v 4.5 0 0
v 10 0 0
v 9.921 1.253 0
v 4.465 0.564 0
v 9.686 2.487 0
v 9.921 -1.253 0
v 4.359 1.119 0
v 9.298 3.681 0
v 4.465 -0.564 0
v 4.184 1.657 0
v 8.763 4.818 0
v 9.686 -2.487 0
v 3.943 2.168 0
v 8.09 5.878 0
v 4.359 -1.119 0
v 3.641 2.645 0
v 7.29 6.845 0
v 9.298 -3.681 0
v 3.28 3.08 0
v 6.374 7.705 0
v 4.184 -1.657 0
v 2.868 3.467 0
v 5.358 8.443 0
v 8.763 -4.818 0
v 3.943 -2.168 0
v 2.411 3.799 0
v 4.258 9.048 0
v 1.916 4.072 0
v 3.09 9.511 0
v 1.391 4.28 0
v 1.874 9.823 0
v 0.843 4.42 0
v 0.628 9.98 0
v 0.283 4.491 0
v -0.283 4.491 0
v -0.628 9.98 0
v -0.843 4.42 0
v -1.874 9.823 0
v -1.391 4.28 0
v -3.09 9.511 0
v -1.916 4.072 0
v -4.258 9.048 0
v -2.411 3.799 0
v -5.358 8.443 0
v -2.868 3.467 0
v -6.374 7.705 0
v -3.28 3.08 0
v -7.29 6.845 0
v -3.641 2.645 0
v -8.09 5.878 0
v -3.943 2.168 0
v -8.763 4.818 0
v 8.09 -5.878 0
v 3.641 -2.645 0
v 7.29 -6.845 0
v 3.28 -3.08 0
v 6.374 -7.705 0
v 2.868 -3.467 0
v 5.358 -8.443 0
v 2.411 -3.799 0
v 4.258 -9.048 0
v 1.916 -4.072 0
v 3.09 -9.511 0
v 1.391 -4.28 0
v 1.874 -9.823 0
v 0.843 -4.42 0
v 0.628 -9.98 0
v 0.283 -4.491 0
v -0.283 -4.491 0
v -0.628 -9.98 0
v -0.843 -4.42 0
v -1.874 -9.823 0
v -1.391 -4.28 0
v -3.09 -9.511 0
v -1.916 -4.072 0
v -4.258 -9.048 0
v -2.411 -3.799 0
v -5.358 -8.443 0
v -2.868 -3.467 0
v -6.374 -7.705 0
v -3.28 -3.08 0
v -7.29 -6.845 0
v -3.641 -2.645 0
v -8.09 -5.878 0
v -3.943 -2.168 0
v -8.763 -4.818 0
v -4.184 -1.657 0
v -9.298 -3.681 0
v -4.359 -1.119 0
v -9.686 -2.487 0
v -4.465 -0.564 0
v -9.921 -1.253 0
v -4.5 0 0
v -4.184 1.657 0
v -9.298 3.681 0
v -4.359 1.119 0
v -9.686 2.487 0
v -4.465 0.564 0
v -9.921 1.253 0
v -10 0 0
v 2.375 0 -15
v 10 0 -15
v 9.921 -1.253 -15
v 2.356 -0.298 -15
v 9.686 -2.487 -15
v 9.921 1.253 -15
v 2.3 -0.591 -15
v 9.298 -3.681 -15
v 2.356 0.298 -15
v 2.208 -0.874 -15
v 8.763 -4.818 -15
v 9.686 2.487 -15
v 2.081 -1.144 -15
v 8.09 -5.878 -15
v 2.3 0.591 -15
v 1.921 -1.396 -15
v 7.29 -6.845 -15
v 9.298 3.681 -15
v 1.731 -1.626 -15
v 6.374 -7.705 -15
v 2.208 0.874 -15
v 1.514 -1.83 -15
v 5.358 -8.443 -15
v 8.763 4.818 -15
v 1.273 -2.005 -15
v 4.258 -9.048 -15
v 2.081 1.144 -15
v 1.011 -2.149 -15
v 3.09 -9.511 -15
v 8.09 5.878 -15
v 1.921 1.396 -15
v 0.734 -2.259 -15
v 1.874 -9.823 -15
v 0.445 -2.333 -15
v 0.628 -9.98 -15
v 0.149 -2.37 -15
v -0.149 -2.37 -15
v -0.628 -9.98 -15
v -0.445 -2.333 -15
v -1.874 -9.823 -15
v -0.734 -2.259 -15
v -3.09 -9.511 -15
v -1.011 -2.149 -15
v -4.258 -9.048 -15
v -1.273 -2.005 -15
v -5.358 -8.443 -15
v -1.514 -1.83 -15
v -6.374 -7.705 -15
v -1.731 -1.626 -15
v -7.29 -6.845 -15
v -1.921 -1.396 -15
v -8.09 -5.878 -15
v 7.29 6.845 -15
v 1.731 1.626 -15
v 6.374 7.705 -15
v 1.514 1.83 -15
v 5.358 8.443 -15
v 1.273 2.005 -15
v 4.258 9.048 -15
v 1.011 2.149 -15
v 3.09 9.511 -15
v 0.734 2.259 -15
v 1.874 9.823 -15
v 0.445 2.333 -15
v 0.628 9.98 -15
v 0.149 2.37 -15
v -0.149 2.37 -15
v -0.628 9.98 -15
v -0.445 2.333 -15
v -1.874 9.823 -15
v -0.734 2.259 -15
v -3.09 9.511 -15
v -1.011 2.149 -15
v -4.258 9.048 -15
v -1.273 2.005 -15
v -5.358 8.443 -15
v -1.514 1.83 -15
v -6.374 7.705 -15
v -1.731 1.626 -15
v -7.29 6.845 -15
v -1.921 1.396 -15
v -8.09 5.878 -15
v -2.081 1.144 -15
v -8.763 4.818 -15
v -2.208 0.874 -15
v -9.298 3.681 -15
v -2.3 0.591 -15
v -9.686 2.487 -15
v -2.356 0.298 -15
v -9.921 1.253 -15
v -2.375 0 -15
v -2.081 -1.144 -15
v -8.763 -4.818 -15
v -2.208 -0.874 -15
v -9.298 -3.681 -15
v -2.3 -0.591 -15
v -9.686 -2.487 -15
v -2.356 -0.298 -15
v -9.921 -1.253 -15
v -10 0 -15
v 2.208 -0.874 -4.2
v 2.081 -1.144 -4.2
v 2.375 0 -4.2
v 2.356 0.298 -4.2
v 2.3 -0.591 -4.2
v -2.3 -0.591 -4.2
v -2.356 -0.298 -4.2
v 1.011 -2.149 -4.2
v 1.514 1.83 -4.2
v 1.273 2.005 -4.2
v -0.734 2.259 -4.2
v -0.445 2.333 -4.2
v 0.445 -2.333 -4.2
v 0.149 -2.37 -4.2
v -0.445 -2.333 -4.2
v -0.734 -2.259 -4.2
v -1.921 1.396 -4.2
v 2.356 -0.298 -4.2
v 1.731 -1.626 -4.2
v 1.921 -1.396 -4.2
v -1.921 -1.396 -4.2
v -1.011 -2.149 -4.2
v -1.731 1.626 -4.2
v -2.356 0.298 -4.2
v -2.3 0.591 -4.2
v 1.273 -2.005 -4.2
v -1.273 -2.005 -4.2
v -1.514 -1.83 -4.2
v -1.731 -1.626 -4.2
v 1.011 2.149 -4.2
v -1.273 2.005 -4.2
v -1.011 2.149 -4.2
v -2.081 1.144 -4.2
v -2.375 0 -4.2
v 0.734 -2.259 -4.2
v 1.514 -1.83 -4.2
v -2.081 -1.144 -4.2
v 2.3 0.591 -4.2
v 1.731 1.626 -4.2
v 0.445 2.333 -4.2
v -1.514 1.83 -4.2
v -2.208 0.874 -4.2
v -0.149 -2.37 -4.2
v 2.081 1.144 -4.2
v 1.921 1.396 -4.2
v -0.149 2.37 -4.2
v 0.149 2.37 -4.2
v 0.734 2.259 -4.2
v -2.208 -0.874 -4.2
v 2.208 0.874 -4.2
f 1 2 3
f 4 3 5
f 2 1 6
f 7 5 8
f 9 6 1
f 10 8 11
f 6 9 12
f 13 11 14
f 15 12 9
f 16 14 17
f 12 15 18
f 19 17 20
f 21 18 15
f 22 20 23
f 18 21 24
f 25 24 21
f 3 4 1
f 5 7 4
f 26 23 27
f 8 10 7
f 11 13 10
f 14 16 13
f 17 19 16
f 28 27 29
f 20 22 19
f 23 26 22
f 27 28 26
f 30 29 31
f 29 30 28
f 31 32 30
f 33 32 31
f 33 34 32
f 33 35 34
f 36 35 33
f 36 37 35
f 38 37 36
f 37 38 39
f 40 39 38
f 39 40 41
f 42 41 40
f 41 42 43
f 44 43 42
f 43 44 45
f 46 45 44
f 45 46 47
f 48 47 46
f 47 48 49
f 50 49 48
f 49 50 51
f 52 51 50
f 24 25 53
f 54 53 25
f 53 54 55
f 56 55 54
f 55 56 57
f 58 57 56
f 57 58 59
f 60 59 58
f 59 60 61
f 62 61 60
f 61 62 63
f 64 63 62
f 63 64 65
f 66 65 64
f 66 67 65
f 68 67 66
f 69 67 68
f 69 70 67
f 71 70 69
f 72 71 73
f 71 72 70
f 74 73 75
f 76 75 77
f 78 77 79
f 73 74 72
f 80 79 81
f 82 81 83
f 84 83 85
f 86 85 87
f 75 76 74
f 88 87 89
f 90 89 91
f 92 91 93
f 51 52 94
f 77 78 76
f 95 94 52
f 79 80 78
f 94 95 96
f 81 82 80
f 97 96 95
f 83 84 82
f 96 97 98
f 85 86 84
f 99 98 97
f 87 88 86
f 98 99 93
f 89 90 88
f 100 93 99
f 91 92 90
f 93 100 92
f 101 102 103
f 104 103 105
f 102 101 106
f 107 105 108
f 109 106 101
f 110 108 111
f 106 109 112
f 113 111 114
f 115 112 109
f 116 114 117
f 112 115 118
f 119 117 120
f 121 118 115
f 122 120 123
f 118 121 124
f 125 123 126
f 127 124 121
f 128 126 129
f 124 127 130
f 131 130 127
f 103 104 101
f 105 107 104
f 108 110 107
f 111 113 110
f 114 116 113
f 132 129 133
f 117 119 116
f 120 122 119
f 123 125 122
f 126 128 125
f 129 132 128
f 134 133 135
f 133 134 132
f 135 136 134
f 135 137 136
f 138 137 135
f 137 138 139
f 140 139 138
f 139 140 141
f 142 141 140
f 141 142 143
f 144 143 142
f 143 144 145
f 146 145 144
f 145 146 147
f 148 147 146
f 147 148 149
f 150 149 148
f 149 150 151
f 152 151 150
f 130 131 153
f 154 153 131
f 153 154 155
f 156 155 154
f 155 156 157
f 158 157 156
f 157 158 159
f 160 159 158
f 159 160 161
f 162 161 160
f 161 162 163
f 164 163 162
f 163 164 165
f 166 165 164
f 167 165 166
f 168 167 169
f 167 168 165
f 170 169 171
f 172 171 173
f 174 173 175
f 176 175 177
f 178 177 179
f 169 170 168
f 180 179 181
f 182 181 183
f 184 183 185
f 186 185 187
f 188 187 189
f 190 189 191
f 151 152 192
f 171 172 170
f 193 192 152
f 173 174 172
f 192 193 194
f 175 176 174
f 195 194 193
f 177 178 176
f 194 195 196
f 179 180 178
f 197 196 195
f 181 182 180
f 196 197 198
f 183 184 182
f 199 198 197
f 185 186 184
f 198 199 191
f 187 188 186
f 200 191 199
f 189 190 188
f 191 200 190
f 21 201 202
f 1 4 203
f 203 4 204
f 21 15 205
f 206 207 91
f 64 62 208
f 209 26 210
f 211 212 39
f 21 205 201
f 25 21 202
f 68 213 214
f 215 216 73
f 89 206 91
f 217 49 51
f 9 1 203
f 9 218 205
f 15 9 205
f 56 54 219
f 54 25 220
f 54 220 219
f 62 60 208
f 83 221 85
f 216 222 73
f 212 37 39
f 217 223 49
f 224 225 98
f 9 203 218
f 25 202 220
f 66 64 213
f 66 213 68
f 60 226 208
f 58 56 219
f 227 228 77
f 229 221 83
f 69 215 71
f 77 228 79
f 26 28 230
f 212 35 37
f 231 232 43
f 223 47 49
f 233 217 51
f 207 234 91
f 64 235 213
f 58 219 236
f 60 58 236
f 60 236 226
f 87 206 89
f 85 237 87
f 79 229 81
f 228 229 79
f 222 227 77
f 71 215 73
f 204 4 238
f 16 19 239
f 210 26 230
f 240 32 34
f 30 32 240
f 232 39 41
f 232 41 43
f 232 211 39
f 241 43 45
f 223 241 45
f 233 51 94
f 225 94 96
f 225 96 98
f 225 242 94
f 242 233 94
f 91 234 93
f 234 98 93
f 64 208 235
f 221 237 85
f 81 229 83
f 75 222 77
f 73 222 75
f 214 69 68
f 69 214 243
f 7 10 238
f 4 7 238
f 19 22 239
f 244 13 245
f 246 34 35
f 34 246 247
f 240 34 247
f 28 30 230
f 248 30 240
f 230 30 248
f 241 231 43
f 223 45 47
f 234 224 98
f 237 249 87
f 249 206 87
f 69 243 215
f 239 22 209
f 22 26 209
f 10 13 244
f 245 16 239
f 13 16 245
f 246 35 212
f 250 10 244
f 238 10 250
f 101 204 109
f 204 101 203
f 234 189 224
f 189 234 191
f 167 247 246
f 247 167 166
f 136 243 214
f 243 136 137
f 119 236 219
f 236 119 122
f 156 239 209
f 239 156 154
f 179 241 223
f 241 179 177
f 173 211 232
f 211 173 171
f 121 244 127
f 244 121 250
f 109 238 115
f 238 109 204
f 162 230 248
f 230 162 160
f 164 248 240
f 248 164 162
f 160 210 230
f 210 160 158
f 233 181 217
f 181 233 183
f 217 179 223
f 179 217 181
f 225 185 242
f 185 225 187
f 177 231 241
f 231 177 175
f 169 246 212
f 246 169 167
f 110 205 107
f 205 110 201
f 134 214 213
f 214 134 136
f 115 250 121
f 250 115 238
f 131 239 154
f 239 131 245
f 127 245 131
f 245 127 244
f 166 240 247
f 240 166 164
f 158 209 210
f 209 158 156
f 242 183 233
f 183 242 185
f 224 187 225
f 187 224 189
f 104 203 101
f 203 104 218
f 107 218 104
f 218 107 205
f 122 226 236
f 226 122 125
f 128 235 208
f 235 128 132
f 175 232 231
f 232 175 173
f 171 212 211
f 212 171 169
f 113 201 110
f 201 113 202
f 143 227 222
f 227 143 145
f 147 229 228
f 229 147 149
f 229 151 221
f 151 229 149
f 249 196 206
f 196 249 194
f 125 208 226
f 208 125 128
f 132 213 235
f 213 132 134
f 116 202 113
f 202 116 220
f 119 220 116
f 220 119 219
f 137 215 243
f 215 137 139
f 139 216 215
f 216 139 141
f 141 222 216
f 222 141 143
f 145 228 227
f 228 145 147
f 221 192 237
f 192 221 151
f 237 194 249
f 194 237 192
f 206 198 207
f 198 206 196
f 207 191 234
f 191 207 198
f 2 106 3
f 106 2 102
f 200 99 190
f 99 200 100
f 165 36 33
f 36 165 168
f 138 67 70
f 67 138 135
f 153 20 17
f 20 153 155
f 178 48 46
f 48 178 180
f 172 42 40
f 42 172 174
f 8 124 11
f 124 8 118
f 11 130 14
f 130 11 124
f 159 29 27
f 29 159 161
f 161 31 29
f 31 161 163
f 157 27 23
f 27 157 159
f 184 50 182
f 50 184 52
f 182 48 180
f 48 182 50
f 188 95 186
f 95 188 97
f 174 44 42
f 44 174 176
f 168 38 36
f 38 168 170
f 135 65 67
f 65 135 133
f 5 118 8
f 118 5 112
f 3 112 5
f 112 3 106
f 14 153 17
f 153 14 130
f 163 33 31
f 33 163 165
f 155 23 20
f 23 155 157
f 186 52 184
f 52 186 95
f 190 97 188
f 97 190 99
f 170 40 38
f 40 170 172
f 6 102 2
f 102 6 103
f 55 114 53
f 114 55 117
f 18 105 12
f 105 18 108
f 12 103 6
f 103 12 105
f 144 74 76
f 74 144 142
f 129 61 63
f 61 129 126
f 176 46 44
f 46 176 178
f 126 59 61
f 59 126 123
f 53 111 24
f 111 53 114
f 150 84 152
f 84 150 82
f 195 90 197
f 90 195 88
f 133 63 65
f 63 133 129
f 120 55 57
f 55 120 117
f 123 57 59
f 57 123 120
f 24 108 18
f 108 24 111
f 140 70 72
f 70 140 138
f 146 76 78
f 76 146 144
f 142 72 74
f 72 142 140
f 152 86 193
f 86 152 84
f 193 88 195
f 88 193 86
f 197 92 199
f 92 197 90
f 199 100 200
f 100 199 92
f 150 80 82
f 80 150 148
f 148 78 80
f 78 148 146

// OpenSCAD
$fn = 50;


difference() {
	union() {
		translate(v = [0, 0, -15.0000000000]) {
			cylinder(h = 15, r = 10.0000000000);
		}
	}
	union() {
		translate(v = [0, 0, 0]) {
			rotate(a = [0, 0, 0]) {
				difference() {
					union() {
						#translate(v = [0, 0, -15.0000000000]) {
							cylinder(h = 15, r = 2.2500000000);
						}
						#translate(v = [0, 0, -4.2000000000]) {
							cylinder(h = 4.2000000000, r1 = 2.3750000000, r2 = 4.5000000000);
						}
						#translate(v = [0, 0, -15.0000000000]) {
							cylinder(h = 15, r = 2.3750000000);
						}
						#translate(v = [0, 0, -15.0000000000]) {
							cylinder(h = 15, r = 2.2500000000);
						}
					}
					union();
				}
			}
		}
	}
}
